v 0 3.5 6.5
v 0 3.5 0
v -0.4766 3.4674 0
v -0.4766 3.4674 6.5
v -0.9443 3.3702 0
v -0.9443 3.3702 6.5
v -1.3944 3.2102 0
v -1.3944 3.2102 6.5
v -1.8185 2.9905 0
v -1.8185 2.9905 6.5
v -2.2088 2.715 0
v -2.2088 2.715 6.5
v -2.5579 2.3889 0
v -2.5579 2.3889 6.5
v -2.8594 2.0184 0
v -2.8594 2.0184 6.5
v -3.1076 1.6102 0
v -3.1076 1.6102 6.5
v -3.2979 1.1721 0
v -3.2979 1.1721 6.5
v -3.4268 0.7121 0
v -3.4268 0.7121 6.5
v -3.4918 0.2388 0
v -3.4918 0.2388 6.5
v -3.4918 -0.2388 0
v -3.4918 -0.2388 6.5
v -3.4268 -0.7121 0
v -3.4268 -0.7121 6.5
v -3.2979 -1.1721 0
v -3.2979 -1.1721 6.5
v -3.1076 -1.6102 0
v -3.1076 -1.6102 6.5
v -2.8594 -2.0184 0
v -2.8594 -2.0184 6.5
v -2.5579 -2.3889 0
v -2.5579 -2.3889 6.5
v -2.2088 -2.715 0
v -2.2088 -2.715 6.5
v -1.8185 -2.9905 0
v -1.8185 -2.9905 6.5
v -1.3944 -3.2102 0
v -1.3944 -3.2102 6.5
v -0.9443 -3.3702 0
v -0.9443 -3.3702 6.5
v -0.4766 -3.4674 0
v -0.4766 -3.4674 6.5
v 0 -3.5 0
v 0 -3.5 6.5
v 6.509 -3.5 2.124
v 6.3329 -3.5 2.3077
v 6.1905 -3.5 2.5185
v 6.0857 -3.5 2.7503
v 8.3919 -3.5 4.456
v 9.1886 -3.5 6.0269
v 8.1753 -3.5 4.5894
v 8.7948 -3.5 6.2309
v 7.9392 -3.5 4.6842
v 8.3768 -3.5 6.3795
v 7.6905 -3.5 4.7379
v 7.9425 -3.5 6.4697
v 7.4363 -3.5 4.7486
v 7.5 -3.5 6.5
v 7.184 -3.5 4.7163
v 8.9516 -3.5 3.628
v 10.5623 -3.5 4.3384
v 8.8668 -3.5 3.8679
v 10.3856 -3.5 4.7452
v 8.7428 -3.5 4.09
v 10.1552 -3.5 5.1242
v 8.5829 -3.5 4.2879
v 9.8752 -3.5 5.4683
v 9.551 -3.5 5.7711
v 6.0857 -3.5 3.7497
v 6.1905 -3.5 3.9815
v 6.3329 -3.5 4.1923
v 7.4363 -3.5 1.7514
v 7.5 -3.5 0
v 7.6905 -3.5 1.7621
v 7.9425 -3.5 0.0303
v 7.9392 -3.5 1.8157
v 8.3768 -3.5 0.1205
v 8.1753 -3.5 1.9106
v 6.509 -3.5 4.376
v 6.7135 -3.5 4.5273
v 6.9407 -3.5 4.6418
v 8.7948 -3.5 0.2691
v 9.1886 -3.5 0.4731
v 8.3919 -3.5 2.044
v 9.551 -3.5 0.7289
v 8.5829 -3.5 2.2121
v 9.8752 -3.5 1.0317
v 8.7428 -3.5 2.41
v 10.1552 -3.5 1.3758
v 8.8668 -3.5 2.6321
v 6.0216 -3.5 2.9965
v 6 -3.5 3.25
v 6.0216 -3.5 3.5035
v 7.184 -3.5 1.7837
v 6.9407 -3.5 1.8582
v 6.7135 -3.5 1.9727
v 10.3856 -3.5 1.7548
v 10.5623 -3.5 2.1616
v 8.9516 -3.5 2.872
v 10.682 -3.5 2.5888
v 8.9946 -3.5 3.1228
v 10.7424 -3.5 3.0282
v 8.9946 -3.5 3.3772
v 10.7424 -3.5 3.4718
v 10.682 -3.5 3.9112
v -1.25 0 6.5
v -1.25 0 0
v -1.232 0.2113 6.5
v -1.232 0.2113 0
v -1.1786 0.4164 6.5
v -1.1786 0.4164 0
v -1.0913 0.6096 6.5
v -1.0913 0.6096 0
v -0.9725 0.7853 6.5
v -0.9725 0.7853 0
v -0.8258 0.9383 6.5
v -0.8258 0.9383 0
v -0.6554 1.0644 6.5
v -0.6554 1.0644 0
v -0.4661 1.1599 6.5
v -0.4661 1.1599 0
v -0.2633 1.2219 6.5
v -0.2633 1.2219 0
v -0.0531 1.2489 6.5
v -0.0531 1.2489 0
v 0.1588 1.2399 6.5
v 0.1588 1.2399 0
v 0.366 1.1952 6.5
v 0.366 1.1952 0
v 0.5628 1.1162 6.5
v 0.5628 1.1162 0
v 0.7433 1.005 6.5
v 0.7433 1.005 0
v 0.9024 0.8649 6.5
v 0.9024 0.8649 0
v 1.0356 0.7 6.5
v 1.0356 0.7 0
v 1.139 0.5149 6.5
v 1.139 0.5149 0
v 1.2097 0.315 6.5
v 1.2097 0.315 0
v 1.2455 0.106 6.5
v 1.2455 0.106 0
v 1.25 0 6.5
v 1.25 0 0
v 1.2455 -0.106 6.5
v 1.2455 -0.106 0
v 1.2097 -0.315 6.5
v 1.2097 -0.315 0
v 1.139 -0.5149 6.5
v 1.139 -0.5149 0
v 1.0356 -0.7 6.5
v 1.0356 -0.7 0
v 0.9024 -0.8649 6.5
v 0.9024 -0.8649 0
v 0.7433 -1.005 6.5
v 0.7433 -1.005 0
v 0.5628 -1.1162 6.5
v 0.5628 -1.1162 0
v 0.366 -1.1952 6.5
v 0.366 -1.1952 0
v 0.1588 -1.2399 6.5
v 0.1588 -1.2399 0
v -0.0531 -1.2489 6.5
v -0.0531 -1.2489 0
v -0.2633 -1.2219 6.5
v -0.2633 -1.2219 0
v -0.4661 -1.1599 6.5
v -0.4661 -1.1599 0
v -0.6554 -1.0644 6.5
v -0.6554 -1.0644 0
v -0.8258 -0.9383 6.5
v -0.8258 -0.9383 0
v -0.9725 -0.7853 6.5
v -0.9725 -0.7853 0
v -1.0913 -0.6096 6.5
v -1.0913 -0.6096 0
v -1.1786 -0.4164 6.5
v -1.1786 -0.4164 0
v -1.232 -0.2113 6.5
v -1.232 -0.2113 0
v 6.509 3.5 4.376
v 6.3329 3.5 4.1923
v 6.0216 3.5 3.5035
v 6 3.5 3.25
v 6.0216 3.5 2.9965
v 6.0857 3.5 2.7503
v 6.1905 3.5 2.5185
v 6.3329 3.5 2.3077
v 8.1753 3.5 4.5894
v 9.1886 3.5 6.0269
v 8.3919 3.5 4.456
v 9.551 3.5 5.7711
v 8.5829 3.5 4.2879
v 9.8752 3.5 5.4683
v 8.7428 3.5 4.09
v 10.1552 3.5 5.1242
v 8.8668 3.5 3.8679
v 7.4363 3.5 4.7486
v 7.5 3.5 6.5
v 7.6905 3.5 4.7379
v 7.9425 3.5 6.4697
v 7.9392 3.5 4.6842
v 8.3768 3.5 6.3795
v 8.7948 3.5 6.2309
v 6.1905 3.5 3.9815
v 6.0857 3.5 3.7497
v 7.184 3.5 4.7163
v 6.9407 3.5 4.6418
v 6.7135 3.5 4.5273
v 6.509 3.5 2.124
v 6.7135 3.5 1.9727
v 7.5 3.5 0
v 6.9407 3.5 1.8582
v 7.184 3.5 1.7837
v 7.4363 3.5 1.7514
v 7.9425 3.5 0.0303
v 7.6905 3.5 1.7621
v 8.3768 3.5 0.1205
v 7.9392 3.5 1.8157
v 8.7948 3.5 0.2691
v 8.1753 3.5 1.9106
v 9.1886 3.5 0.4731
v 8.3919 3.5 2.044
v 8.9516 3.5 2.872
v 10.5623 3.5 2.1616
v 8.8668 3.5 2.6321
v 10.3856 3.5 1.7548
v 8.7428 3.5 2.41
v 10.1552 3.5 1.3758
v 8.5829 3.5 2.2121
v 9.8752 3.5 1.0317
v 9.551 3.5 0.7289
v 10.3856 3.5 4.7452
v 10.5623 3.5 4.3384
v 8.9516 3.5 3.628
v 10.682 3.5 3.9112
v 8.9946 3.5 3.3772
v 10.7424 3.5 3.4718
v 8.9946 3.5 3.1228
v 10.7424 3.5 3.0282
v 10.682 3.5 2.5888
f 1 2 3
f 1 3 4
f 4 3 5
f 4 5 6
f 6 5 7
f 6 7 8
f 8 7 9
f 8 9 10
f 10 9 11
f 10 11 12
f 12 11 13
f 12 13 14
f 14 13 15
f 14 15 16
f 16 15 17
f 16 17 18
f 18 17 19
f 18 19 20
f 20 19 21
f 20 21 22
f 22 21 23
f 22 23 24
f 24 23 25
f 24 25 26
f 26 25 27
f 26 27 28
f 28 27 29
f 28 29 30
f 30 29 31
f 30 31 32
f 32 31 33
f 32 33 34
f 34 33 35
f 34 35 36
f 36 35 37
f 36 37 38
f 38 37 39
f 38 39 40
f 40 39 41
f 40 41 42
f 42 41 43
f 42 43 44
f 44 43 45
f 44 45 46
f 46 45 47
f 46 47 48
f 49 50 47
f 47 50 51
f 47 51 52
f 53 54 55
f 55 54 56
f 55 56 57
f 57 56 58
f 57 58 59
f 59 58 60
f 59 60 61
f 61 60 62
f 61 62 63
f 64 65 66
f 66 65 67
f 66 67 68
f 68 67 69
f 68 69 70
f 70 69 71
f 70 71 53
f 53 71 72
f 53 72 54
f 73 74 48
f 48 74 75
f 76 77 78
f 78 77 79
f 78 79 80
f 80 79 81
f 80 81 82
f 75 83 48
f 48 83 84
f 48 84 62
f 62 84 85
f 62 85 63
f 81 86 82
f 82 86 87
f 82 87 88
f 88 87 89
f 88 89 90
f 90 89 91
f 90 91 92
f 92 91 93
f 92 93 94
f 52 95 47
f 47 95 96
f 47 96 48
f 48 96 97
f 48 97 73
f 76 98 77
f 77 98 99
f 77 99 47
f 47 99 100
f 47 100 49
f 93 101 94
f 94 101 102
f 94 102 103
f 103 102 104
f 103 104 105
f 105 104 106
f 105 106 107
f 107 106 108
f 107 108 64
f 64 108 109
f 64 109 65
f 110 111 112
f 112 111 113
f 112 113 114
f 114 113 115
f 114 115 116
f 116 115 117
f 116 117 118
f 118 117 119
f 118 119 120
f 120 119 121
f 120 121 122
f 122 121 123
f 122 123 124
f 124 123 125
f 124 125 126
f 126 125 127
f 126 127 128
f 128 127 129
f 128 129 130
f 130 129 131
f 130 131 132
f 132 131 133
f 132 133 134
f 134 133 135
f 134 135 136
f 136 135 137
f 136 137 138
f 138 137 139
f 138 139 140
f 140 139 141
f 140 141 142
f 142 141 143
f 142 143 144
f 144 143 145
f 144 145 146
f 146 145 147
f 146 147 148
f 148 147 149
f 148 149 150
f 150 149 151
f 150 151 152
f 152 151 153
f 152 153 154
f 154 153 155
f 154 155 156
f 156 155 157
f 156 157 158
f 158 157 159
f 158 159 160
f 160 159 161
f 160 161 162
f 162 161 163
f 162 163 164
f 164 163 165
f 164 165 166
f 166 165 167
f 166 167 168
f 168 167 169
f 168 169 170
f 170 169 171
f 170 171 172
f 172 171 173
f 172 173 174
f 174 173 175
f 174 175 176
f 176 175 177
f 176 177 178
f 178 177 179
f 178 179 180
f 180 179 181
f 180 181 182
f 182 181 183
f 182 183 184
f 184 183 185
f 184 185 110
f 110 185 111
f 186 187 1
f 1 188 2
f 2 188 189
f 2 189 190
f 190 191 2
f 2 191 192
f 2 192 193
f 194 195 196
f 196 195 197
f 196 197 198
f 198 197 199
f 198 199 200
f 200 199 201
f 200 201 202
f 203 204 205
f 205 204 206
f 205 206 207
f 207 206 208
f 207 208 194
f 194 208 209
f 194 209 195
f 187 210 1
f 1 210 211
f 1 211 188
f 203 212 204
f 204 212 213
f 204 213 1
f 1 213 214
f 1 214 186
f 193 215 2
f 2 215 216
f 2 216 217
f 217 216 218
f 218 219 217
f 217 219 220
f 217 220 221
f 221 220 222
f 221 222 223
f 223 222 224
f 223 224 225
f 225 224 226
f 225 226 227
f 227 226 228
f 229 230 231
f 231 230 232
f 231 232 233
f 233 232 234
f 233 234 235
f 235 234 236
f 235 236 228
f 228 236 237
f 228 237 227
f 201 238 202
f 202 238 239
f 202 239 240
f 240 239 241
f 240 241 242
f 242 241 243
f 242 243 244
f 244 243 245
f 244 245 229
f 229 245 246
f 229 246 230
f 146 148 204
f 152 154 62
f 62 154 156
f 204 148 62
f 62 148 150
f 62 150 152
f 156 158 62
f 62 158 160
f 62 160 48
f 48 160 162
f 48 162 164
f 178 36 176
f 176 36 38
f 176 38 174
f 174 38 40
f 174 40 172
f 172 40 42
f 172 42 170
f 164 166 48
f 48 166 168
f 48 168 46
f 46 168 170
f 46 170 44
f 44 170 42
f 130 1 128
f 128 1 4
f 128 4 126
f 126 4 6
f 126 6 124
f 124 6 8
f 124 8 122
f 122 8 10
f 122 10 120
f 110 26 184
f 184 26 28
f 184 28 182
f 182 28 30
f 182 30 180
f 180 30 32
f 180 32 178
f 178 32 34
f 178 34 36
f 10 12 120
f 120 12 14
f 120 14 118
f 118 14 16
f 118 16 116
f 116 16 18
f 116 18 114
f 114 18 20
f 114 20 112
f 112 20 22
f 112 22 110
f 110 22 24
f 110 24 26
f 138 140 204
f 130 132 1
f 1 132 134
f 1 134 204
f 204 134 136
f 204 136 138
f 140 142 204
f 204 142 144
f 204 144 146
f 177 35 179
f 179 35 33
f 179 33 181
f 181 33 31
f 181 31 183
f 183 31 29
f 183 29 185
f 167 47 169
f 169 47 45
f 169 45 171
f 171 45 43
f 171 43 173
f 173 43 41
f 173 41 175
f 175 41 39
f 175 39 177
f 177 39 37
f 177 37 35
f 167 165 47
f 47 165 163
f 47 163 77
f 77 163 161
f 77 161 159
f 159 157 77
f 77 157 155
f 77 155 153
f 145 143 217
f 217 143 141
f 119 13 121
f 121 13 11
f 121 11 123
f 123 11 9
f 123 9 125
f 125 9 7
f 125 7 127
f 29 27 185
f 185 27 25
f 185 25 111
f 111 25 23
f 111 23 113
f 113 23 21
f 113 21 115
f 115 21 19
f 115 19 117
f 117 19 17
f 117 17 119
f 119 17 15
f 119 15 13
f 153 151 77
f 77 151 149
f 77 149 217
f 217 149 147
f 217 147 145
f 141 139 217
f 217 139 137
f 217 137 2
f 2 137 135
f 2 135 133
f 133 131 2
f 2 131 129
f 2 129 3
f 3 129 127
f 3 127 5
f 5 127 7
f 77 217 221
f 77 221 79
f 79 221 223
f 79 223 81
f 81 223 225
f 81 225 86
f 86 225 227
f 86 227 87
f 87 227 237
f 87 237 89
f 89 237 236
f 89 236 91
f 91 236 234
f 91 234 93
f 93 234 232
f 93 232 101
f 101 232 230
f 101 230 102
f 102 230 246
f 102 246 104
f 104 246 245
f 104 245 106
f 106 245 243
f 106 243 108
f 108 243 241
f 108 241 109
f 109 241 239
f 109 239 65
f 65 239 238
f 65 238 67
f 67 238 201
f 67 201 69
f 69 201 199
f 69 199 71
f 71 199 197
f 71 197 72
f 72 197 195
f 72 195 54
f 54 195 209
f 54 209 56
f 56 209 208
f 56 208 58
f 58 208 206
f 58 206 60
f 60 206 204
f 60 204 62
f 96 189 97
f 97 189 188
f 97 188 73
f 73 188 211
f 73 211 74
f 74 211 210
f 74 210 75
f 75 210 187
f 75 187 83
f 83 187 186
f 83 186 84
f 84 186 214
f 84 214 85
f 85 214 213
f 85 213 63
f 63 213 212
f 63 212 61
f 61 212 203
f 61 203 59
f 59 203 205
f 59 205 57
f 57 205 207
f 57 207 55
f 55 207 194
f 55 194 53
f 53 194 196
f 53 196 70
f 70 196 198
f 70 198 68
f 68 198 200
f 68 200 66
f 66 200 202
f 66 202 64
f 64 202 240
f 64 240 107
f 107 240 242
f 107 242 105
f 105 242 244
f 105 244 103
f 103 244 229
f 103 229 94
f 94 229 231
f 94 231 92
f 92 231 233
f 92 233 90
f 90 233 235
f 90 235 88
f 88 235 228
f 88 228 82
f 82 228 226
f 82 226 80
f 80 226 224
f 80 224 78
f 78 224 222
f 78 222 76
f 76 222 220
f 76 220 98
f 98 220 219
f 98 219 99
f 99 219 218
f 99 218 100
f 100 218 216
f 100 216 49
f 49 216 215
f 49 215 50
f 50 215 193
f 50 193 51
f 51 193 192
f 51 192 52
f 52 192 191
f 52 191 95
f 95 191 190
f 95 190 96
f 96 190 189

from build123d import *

# Parameters (mm, degrees)
SKETCH_1_R      = 3.5
SKETCH_1_R_2    = 1.25
EXTRUDE_1_DEPTH = 6.5
SKETCH_2_R      = 3.25
SKETCH_2_R_2    = 1.5
EXTRUDE_2_DEPTH = 7


with BuildPart() as part:
    # Эскиз1 → Бобышка-Вытянуть1 (new body)
    # profile 1 of 3: a face of its own
    with BuildSketch(Plane.XY):
        Circle(SKETCH_1_R)
        with Locations(Location((0, 0, 0), (0, 0, 180))):
            Circle(SKETCH_1_R_2, mode=Mode.SUBTRACT)
    # profile 2 of 3: a face of its own
    with BuildSketch(Plane.XY):
        with BuildLine():
            Line((3.5, 3.5), (0, 3.5))
            ThreePointArc((0, 3.5), (2.474873734, 2.474873734), (3.5, 0))
            Line((3.5, 0), (3.5, 3.5))
        make_face()
    # profile 3 of 3: a face of its own
    with BuildSketch(Plane.XY):
        with BuildLine():
            Line((3.5, -3.5), (3.5, 0))
            ThreePointArc((3.5, 0), (2.474873734, -2.474873734), (0, -3.5))
            Line((0, -3.5), (3.5, -3.5))
        make_face()
    extrude(amount=EXTRUDE_1_DEPTH)

    # Эскиз2 → Бобышка-Вытянуть2 (add)
    # profile 1 of 2: a face of its own
    with BuildSketch(Plane(origin=(0, 3.5, 0), x_dir=(1, 0, 0), z_dir=(0, 1, 0))):
        with BuildLine():
            ThreePointArc((7.5, -6.5), (4.25, -3.25), (7.5, 0))
            Line((7.5, 0), (3.5, 0))
            Line((3.5, 0), (3.5, -6.5))
            Line((3.5, -6.5), (7.5, -6.5))
        make_face()
    # profile 2 of 2: a face of its own
    with BuildSketch(Plane(origin=(0, 3.5, 0), x_dir=(1, 0, 0), z_dir=(0, 1, 0))):
        with Locations((7.5, -3.25)):
            Circle(SKETCH_2_R)
        with Locations(Location((7.5, -3.25, 0), (0, 0, 180))):
            Circle(SKETCH_2_R_2, mode=Mode.SUBTRACT)
    extrude(amount=-EXTRUDE_2_DEPTH)


solid = part.part
